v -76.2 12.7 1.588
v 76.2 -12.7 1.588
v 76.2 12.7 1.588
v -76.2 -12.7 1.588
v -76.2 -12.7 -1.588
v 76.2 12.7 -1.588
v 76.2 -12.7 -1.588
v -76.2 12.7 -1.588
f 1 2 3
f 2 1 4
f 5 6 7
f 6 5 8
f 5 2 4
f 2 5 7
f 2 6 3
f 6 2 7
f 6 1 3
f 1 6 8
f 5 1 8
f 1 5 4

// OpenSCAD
// ========================================
// a 6 by 1 by 0.125 inch plate
// NeuroCAD canonical IR; dimensions are millimetres
// ========================================
$fn = 48;

cube(size=[152.4, 25.4, 3.175], center=true);
